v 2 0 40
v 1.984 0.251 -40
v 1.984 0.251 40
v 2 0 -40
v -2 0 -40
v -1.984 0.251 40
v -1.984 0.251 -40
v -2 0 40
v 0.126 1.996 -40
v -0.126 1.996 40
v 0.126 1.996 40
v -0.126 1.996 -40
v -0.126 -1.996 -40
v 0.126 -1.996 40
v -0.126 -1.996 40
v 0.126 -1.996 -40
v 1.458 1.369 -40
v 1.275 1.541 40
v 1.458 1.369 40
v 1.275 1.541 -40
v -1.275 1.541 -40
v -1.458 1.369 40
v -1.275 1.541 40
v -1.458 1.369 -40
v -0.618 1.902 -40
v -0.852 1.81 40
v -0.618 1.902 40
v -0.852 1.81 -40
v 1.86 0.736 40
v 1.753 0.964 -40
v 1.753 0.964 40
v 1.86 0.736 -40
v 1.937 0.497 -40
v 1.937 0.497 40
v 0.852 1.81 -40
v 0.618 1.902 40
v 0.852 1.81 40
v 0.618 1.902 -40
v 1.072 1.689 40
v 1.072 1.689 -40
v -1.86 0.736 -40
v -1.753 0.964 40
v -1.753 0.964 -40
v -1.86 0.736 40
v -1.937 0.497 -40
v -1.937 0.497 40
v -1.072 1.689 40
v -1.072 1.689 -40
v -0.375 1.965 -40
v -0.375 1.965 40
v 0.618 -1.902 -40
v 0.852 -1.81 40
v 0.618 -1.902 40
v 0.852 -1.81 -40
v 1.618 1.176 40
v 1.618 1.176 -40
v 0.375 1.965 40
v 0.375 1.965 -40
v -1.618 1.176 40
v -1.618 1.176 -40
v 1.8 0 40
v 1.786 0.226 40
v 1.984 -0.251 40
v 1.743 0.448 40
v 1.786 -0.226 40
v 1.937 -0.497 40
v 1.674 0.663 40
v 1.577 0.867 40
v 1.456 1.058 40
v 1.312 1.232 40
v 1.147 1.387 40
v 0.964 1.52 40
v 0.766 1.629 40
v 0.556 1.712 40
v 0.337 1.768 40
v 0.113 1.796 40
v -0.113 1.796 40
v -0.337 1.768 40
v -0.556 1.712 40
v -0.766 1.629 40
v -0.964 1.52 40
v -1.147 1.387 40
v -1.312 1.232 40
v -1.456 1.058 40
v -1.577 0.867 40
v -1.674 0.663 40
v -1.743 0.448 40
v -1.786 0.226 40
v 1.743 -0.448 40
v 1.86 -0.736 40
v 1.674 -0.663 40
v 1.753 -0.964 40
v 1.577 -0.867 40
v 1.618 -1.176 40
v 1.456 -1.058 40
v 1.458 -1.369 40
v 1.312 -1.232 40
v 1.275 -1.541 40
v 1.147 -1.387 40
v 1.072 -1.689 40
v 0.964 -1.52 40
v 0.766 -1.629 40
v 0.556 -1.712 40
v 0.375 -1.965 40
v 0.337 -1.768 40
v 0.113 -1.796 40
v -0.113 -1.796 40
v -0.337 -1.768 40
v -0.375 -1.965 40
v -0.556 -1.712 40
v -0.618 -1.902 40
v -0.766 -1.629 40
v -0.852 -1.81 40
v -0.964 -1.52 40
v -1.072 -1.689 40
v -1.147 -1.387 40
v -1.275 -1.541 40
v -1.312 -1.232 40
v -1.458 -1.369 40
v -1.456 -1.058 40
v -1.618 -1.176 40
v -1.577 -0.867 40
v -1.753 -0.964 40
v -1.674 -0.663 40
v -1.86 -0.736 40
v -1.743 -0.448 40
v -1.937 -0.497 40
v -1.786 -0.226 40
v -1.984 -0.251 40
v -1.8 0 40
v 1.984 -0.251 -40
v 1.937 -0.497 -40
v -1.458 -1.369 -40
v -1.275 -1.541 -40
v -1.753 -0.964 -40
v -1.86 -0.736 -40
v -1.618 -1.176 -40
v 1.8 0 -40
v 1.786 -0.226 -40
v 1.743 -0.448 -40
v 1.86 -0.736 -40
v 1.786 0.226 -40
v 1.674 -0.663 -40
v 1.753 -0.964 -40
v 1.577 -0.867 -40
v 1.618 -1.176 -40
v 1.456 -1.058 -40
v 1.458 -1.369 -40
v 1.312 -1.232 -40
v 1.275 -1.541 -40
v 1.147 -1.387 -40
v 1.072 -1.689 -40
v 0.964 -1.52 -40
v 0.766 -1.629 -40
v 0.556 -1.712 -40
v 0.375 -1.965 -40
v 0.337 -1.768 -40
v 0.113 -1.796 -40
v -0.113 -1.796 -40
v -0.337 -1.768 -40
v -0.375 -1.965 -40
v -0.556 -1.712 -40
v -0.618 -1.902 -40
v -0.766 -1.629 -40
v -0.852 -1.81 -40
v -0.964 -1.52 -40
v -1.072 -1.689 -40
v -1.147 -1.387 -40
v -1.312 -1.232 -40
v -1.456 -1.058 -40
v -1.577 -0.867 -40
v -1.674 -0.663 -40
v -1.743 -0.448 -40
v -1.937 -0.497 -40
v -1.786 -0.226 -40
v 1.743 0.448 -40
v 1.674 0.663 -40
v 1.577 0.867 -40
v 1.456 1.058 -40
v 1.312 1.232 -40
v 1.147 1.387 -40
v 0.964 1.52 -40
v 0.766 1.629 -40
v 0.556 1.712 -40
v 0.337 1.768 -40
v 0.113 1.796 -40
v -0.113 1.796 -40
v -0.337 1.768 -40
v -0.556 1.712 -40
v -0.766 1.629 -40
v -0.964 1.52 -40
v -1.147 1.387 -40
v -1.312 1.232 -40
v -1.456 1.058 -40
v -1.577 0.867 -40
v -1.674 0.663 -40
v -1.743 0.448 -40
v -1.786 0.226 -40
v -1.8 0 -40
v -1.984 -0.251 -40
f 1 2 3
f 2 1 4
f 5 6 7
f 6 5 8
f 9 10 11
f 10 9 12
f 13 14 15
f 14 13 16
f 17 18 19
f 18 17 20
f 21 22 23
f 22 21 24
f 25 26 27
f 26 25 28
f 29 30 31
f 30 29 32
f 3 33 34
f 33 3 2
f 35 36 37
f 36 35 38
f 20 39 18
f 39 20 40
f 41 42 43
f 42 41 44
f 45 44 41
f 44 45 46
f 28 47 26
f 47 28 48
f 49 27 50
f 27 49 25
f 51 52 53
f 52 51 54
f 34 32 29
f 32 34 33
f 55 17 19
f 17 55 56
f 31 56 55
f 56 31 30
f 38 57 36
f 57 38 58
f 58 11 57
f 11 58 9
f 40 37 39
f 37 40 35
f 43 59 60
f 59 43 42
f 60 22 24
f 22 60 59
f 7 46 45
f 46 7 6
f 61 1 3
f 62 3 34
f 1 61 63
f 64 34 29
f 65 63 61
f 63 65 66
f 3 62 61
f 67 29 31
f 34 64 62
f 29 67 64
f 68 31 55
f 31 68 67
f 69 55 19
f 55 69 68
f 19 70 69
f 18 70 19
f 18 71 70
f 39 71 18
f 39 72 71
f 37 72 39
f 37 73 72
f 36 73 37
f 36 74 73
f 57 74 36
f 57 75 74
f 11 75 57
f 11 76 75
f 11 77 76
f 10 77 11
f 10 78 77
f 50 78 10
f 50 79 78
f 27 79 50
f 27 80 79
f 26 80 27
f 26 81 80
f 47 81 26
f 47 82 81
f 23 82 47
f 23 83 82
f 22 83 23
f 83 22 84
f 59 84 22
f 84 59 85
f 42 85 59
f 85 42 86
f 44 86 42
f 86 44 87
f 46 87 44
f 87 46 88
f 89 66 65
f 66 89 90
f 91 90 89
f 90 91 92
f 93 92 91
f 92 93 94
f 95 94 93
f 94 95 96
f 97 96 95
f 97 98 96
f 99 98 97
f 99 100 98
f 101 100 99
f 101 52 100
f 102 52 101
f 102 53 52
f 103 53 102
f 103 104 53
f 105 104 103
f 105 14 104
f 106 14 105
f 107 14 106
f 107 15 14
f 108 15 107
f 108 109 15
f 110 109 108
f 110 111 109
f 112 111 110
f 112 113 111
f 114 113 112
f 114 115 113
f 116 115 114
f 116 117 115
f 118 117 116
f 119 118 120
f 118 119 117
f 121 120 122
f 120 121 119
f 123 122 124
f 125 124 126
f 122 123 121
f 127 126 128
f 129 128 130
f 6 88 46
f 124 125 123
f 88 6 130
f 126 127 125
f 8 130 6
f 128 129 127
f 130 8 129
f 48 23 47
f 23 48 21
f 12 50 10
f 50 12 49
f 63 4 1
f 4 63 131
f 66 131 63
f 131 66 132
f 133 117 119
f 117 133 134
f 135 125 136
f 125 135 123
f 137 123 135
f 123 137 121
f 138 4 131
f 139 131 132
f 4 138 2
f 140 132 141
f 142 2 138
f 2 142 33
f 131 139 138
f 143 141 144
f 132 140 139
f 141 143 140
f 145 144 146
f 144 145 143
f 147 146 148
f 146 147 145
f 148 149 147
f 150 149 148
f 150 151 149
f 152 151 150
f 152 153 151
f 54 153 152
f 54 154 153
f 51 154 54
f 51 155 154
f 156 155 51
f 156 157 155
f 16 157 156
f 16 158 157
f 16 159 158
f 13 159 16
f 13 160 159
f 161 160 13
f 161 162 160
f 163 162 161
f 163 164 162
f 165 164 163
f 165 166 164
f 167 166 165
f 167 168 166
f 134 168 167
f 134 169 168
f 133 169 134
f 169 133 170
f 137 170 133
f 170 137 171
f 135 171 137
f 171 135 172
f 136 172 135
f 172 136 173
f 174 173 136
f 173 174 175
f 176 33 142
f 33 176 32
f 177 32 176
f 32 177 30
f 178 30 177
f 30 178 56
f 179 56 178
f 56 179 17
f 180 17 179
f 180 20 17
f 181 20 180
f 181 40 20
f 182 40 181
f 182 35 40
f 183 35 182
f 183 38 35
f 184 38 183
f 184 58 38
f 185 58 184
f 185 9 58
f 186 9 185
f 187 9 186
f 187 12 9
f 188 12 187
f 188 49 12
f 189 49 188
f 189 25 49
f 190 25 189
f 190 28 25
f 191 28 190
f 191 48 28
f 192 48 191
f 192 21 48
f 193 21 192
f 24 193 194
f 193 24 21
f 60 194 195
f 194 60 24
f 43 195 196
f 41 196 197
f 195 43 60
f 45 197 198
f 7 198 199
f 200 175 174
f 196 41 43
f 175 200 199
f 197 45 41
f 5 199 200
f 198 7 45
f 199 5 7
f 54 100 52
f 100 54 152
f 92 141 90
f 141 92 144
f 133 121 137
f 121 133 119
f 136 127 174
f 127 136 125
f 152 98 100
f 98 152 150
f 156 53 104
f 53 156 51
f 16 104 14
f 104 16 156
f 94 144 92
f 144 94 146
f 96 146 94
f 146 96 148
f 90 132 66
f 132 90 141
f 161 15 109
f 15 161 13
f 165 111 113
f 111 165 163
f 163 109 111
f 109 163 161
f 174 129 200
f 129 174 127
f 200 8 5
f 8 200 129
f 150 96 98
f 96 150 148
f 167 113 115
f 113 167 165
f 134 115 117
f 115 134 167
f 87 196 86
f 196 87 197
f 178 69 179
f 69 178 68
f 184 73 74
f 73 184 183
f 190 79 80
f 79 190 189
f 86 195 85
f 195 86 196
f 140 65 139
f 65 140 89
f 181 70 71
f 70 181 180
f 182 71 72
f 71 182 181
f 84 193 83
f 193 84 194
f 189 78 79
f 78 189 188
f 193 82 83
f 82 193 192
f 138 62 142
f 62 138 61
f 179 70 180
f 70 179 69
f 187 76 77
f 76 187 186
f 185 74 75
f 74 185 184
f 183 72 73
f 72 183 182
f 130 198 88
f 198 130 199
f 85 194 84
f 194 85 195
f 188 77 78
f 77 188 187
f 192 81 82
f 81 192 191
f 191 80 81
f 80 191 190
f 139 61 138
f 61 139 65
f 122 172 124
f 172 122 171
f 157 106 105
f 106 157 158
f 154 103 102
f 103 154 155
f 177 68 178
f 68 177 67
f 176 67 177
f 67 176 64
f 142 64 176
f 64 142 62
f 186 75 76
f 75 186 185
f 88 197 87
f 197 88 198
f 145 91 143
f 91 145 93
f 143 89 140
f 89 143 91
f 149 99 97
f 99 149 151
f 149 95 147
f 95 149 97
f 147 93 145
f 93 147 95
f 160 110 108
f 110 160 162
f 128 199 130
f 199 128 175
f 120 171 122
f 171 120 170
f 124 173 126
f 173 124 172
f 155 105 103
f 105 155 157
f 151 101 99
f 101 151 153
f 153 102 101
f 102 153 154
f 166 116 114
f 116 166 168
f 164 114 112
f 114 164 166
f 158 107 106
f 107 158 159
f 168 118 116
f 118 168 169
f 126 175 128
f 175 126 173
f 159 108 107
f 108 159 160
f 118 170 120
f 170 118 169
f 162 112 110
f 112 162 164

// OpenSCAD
$fn = 50;


difference() {
	union() {
		translate(v = [0, 0, -40.0000000000]) {
			cylinder(h = 80, r = 2.0000000000);
		}
	}
	union() {
		translate(v = [0, 0, -100.0000000000]) {
			cylinder(h = 200, r = 1.8000000000);
		}
	}
}
